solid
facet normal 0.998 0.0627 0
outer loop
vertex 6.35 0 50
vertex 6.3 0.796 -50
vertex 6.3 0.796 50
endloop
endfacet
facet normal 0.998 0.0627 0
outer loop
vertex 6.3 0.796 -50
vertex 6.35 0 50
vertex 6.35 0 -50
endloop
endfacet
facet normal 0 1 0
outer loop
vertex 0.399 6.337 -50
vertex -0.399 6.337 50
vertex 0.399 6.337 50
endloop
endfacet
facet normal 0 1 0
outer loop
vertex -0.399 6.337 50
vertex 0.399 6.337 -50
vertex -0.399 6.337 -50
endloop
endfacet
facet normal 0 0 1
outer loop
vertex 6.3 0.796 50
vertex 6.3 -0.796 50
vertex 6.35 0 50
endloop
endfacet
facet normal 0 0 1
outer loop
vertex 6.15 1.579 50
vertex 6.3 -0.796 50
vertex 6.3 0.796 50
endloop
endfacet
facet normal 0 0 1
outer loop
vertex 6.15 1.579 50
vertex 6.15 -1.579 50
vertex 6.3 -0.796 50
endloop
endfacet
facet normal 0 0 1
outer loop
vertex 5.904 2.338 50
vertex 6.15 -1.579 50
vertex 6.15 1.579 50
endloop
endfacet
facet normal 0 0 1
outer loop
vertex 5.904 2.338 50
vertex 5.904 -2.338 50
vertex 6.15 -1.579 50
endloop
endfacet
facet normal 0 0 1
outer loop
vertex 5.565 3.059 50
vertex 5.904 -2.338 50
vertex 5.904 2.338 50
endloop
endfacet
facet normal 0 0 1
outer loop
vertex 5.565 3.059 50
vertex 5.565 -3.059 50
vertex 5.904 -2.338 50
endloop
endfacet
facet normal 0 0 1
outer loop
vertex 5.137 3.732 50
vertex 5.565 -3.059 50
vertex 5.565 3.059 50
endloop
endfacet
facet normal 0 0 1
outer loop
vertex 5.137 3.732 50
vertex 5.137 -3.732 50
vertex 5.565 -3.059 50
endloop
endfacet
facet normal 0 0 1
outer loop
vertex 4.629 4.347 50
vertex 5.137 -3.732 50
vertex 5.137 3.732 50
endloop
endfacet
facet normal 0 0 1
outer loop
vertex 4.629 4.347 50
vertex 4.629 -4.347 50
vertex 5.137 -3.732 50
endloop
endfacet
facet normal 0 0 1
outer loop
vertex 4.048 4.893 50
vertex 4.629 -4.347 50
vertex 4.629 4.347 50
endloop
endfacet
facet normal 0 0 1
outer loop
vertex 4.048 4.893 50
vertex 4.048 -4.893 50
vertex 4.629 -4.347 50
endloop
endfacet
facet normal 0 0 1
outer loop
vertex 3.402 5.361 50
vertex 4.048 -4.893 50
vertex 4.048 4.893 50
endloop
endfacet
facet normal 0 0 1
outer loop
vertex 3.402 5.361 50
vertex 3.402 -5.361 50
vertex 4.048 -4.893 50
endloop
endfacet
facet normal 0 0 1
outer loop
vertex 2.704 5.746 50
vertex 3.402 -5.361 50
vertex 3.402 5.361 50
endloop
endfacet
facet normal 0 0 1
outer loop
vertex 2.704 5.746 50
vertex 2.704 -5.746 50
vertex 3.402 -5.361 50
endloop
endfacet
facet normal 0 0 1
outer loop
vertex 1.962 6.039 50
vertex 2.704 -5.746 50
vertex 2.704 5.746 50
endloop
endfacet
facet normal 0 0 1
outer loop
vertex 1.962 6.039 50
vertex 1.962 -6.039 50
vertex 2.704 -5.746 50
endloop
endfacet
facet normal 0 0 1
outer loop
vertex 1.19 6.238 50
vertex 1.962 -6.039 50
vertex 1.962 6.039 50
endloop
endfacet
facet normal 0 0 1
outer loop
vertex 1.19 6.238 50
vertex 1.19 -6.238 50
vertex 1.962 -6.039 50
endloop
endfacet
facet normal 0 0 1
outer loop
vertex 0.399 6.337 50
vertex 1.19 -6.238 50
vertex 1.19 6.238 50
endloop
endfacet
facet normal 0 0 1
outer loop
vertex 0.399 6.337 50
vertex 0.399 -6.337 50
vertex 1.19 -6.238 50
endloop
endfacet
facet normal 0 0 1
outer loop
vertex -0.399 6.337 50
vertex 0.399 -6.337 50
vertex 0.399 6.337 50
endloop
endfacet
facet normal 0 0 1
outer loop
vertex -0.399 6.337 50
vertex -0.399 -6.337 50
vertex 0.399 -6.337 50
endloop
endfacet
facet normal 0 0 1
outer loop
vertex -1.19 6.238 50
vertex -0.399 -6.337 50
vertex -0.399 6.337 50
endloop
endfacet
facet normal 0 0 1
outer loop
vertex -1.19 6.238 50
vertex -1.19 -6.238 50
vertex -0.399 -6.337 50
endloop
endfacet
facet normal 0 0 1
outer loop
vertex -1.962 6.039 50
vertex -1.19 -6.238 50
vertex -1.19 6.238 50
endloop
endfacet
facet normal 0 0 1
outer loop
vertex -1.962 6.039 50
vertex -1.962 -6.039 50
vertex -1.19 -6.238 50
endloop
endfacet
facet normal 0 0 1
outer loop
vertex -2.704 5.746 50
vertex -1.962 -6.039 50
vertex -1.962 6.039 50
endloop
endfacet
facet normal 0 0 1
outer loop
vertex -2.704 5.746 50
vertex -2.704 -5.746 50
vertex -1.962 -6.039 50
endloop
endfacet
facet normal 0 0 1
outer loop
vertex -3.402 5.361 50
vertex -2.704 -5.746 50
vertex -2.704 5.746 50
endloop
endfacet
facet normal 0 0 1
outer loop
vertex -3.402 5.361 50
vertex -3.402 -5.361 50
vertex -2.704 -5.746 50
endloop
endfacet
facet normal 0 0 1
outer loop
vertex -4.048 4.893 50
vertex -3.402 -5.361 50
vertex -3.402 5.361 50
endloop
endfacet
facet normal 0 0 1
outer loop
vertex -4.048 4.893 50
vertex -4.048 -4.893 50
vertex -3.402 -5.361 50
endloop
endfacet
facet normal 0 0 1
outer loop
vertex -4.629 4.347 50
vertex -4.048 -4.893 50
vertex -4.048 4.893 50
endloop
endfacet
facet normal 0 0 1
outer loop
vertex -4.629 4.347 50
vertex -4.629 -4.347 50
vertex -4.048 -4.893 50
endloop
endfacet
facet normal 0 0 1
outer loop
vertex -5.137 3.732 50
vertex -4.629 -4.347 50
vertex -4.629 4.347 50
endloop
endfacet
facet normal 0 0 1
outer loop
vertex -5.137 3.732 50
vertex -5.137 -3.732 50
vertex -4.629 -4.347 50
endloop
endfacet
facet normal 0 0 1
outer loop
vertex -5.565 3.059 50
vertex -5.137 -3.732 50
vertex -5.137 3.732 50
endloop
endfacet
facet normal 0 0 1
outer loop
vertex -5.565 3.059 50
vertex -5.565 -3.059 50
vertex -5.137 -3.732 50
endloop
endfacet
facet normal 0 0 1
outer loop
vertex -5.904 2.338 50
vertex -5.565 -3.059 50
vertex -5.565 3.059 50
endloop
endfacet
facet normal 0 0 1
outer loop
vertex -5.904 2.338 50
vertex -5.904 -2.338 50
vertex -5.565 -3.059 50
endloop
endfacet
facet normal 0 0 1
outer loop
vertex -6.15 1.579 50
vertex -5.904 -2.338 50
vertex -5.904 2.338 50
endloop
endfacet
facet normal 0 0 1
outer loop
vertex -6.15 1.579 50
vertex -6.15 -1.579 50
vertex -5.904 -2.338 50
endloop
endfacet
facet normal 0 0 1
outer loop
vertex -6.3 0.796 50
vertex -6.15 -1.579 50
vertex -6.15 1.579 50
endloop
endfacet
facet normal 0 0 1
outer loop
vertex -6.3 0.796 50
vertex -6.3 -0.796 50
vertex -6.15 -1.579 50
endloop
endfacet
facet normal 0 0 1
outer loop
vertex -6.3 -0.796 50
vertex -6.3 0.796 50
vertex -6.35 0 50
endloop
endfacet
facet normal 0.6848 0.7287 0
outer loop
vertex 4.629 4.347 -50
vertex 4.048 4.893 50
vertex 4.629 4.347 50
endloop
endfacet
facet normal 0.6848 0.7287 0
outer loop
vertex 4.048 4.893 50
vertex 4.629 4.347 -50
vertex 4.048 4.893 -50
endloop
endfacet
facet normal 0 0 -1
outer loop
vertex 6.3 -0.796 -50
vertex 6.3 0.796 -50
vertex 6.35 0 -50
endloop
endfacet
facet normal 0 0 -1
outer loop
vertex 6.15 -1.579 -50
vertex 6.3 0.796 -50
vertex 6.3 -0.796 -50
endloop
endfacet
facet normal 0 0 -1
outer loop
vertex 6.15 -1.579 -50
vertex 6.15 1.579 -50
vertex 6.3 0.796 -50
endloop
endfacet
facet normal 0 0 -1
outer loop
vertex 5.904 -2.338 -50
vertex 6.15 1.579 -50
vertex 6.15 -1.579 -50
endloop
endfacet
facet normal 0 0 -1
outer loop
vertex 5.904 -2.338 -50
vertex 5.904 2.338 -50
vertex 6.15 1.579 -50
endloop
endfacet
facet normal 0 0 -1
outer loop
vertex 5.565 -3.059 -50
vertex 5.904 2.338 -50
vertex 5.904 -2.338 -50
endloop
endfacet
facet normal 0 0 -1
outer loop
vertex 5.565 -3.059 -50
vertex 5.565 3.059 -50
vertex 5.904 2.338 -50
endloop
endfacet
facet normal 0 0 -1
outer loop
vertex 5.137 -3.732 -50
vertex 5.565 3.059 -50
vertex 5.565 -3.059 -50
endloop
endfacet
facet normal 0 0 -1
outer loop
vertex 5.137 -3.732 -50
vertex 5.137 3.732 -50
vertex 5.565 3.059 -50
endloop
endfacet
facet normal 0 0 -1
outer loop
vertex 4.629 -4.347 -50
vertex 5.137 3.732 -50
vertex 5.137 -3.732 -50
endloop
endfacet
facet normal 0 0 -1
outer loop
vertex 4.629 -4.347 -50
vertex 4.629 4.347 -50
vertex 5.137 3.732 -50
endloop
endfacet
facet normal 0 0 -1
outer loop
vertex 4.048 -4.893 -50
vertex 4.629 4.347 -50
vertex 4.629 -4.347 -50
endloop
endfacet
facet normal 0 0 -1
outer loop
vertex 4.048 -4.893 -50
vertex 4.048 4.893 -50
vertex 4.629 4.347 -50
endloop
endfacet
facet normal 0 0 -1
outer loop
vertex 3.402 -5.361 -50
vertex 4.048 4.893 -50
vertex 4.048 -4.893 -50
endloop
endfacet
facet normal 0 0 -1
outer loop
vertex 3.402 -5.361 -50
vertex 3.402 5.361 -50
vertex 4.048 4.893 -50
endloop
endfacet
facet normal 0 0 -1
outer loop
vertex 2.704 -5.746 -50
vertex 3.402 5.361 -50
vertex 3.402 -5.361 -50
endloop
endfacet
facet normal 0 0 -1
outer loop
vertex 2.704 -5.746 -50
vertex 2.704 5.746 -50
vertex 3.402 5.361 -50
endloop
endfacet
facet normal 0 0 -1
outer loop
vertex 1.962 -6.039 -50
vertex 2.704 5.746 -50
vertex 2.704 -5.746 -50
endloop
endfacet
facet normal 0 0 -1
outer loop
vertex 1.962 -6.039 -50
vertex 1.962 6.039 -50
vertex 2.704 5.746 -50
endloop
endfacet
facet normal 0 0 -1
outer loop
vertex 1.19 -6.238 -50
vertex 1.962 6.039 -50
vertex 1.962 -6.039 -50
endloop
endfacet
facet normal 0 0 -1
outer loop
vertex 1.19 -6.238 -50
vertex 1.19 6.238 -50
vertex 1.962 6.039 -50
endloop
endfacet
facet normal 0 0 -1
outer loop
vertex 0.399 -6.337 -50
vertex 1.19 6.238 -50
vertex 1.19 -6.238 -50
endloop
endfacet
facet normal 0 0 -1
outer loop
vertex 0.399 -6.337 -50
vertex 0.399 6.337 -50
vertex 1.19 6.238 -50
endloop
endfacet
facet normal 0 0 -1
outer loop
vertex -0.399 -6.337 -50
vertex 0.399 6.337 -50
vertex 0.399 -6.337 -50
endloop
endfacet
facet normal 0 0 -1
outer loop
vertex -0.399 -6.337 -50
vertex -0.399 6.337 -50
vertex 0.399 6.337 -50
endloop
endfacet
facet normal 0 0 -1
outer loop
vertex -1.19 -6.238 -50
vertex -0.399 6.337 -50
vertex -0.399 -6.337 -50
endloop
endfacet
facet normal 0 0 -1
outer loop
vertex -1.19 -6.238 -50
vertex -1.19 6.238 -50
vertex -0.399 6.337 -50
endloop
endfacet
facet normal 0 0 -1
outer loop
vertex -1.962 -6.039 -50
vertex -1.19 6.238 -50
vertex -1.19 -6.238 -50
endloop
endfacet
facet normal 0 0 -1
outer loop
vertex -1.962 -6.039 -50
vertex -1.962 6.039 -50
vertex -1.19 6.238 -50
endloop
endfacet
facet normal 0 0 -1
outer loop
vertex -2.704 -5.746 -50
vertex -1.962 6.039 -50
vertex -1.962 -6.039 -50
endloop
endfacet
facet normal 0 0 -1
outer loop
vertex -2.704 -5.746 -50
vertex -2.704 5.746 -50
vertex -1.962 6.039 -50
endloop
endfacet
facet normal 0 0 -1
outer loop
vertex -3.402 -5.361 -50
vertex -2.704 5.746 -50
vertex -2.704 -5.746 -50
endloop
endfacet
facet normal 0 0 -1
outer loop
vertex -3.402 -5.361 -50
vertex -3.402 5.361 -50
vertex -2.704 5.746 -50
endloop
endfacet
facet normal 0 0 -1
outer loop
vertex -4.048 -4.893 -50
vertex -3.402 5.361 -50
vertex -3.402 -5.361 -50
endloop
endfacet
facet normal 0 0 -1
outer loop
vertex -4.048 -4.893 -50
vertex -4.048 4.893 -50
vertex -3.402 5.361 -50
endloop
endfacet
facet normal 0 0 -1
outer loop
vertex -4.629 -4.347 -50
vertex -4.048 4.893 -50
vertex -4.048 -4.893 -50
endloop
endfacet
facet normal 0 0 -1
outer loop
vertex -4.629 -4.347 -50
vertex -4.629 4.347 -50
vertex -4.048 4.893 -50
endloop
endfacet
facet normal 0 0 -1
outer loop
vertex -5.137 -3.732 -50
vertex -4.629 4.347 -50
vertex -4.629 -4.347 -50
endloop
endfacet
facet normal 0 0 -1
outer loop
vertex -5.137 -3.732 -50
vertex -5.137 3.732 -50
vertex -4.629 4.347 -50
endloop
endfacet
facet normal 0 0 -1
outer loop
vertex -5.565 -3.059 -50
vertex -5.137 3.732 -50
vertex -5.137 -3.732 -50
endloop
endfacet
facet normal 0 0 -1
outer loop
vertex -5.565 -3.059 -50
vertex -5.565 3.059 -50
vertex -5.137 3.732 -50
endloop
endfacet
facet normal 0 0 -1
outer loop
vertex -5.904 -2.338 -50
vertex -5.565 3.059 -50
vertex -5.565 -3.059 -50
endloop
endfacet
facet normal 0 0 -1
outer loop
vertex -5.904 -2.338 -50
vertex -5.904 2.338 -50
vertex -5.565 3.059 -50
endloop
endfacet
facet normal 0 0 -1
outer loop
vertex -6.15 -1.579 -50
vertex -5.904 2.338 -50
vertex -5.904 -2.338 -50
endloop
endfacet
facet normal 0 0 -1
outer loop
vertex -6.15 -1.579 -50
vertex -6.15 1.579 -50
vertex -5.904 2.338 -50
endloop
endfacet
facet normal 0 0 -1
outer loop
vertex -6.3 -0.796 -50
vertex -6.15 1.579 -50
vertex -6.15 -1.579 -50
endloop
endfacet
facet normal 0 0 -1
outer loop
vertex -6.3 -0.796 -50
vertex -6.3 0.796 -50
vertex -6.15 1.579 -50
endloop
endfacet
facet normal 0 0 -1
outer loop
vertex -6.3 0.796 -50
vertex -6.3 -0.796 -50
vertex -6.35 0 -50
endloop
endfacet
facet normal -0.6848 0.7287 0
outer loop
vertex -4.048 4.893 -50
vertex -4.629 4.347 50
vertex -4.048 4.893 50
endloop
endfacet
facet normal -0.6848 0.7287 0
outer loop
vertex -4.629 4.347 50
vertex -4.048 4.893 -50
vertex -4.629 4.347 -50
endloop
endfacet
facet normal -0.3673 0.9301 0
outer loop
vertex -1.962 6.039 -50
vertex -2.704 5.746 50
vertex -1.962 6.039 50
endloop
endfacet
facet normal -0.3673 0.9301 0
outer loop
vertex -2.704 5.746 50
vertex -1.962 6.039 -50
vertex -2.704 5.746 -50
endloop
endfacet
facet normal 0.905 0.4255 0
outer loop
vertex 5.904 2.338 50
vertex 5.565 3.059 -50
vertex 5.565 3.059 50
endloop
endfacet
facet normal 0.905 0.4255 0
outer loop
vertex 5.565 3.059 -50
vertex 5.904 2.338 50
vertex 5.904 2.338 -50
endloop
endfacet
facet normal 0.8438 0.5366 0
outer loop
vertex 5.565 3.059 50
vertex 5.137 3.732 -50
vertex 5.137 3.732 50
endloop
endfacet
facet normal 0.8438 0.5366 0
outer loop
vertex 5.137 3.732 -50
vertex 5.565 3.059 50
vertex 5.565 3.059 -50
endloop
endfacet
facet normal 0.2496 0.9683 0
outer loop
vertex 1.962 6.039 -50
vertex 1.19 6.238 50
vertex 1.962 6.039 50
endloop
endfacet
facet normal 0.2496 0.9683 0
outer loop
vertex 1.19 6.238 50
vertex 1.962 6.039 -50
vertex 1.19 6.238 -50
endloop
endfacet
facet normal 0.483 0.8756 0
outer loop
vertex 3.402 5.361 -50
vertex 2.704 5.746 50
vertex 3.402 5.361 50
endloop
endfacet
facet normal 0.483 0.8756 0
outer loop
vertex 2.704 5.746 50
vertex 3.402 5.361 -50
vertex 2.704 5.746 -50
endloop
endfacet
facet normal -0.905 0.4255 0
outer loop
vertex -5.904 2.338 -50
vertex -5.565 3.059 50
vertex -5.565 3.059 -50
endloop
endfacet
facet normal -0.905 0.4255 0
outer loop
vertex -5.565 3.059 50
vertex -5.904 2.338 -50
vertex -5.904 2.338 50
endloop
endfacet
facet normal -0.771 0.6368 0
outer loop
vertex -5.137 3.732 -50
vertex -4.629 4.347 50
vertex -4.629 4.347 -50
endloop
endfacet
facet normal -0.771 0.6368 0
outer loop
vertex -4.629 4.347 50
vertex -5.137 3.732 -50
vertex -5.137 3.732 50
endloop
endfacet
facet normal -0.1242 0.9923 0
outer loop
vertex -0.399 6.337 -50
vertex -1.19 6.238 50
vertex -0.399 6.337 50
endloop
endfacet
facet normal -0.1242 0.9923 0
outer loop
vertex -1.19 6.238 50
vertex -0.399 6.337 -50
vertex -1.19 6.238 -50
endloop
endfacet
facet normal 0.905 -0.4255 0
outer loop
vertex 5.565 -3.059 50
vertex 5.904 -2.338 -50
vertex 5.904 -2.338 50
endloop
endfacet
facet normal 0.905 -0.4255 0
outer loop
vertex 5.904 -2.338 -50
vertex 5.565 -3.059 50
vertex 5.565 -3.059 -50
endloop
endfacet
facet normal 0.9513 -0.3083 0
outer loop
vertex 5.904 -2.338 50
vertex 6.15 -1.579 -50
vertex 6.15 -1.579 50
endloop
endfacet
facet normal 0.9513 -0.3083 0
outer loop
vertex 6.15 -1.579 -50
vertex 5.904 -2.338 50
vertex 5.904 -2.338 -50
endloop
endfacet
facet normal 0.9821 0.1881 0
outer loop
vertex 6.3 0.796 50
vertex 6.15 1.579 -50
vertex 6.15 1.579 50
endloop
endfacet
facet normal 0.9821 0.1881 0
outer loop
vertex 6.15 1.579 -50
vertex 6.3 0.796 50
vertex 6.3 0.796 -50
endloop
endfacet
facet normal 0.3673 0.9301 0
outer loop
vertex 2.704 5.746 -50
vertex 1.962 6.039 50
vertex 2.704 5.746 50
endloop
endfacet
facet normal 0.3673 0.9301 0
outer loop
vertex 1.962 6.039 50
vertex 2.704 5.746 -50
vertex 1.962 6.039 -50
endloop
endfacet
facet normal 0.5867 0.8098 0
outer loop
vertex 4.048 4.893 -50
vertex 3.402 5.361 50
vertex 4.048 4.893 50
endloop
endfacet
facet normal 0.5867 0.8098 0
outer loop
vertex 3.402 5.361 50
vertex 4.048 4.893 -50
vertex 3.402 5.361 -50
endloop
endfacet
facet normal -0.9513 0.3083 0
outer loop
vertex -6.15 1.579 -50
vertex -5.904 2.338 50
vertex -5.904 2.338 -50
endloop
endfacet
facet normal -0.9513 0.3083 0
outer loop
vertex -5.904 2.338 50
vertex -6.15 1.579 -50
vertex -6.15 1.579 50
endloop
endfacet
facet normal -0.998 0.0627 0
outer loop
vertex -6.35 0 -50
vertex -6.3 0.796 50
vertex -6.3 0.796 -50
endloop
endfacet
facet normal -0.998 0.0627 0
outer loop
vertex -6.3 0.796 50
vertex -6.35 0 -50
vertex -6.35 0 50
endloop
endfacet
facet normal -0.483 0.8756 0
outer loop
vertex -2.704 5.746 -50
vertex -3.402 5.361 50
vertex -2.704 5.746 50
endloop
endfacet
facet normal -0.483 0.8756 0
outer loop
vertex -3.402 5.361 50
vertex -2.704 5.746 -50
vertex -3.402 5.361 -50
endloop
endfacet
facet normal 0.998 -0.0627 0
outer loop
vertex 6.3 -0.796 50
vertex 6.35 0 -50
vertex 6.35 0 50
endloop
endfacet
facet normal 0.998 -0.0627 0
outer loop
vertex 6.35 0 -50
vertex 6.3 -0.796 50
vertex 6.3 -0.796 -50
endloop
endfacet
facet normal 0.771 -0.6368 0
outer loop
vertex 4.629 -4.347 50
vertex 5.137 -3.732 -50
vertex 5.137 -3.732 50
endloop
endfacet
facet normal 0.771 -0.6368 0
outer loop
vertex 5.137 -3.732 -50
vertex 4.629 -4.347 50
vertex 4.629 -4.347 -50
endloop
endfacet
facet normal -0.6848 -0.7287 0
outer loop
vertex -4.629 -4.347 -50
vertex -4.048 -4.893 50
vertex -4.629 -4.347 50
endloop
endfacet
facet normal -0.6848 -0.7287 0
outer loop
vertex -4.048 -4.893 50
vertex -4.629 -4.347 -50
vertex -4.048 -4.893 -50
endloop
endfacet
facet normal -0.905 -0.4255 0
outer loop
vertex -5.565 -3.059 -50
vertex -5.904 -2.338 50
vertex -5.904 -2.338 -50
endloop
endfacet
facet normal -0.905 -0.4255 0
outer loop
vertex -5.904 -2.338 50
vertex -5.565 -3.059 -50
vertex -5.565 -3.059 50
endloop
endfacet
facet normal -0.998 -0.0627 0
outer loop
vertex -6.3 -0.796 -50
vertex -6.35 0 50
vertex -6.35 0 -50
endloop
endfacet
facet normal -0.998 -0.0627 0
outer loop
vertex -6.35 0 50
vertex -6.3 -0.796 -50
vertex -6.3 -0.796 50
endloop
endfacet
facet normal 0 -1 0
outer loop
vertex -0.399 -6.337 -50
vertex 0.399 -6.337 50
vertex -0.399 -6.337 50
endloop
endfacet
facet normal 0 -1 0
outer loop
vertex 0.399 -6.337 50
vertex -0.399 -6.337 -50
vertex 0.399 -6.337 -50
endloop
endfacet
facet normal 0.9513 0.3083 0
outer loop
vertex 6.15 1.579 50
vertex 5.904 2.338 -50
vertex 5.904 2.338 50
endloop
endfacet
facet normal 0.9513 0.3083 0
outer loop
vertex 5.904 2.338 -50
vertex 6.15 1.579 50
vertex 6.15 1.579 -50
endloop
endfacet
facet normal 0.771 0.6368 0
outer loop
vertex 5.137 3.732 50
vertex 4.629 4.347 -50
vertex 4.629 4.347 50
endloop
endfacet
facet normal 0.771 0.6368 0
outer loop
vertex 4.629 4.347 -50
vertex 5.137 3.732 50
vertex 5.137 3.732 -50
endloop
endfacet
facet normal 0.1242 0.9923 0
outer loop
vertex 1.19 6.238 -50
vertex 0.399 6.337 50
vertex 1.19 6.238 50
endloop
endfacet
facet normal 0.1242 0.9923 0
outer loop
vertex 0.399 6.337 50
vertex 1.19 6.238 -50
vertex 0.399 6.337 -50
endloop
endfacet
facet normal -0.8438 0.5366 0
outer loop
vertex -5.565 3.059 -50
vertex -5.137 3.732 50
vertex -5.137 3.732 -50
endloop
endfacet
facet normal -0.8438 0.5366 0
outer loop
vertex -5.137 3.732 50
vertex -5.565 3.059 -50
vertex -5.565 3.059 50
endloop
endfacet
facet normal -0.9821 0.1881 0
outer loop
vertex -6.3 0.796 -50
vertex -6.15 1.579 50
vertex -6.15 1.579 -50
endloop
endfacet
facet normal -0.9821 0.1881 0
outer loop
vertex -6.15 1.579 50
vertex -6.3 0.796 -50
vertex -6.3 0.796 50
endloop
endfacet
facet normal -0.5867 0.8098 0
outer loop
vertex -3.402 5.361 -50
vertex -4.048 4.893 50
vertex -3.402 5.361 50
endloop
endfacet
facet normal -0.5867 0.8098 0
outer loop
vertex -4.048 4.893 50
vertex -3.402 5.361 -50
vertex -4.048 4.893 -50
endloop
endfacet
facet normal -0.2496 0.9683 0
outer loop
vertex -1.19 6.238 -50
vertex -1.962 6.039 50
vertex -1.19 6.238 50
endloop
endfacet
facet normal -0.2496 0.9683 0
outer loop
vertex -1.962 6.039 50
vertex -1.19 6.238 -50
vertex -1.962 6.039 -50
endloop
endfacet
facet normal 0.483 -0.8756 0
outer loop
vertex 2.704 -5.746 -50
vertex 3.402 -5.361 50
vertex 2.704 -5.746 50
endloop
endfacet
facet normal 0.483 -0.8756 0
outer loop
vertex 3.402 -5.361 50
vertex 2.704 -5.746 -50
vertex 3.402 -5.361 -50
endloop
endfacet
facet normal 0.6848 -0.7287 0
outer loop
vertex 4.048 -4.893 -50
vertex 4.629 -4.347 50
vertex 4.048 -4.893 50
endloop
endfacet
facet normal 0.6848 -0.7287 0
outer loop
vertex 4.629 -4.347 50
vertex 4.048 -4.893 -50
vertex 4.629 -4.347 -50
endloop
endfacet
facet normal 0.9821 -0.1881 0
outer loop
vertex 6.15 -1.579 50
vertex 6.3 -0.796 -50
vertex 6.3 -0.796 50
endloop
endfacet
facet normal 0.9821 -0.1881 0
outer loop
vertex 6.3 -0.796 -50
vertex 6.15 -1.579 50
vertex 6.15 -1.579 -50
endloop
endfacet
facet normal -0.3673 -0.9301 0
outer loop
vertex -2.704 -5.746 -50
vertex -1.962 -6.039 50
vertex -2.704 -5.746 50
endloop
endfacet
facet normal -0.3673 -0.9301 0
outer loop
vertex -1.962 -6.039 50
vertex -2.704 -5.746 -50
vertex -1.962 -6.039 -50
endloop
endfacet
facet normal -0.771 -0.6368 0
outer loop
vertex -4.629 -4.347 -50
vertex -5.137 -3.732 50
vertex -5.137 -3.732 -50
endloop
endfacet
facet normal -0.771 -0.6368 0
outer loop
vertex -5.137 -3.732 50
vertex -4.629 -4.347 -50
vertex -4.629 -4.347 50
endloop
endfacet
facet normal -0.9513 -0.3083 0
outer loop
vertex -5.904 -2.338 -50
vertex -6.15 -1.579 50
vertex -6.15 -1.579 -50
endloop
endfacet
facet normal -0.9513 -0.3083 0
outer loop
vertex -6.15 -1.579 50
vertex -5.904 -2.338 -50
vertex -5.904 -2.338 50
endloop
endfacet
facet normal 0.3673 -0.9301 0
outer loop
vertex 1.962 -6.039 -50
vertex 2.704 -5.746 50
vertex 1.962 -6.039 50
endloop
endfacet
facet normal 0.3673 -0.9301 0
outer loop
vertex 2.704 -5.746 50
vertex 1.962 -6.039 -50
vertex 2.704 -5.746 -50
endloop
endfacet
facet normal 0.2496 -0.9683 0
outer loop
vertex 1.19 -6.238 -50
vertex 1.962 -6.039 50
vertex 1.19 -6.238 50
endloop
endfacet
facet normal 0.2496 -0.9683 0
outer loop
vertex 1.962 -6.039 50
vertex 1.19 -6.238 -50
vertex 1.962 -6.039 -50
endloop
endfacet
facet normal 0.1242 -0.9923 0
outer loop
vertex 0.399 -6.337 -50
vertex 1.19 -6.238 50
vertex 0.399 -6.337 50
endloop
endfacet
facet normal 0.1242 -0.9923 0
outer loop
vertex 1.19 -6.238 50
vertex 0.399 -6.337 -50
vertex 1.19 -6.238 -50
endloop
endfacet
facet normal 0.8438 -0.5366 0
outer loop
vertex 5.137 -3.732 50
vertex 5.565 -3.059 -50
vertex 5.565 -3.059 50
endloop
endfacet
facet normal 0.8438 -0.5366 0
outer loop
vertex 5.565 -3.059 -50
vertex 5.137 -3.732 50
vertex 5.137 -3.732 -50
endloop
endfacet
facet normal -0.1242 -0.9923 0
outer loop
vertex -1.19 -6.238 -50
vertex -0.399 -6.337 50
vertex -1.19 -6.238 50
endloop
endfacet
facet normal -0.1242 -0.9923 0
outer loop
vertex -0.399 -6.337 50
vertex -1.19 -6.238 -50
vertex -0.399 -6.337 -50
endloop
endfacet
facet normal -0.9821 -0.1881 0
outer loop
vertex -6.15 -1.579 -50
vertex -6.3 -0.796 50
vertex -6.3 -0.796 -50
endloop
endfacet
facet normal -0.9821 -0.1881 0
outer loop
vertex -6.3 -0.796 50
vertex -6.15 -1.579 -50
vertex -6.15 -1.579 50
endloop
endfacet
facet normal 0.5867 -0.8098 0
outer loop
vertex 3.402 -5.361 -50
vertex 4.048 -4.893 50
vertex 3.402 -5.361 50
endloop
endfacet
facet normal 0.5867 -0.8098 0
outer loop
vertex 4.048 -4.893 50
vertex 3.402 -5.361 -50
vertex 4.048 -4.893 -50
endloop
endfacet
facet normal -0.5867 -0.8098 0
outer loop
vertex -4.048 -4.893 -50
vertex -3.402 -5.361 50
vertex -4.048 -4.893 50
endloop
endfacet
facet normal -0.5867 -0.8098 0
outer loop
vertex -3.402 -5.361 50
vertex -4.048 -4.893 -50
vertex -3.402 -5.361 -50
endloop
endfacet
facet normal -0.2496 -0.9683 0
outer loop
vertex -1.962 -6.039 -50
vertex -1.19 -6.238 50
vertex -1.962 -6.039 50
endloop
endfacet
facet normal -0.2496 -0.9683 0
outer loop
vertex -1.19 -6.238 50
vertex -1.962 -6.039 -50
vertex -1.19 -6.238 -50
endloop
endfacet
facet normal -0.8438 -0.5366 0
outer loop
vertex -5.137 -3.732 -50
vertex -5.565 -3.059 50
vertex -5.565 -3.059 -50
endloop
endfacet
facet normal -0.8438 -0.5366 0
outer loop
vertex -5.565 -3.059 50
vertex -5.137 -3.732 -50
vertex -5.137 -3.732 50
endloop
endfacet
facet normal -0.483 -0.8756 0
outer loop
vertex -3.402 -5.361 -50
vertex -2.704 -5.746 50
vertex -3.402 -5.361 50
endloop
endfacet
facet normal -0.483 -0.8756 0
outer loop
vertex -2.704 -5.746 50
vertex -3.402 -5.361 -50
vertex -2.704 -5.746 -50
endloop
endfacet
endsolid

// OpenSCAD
$fn = 50;


difference() {
	union() {
		translate(v = [0, 0, -50.0000000000]) {
			cylinder(h = 100, r = 6.3500000000);
		}
	}
	union() {
		translate(v = [0, 0, -100.0000000000]) {
			cylinder(h = 200, r = 0);
		}
	}
}
